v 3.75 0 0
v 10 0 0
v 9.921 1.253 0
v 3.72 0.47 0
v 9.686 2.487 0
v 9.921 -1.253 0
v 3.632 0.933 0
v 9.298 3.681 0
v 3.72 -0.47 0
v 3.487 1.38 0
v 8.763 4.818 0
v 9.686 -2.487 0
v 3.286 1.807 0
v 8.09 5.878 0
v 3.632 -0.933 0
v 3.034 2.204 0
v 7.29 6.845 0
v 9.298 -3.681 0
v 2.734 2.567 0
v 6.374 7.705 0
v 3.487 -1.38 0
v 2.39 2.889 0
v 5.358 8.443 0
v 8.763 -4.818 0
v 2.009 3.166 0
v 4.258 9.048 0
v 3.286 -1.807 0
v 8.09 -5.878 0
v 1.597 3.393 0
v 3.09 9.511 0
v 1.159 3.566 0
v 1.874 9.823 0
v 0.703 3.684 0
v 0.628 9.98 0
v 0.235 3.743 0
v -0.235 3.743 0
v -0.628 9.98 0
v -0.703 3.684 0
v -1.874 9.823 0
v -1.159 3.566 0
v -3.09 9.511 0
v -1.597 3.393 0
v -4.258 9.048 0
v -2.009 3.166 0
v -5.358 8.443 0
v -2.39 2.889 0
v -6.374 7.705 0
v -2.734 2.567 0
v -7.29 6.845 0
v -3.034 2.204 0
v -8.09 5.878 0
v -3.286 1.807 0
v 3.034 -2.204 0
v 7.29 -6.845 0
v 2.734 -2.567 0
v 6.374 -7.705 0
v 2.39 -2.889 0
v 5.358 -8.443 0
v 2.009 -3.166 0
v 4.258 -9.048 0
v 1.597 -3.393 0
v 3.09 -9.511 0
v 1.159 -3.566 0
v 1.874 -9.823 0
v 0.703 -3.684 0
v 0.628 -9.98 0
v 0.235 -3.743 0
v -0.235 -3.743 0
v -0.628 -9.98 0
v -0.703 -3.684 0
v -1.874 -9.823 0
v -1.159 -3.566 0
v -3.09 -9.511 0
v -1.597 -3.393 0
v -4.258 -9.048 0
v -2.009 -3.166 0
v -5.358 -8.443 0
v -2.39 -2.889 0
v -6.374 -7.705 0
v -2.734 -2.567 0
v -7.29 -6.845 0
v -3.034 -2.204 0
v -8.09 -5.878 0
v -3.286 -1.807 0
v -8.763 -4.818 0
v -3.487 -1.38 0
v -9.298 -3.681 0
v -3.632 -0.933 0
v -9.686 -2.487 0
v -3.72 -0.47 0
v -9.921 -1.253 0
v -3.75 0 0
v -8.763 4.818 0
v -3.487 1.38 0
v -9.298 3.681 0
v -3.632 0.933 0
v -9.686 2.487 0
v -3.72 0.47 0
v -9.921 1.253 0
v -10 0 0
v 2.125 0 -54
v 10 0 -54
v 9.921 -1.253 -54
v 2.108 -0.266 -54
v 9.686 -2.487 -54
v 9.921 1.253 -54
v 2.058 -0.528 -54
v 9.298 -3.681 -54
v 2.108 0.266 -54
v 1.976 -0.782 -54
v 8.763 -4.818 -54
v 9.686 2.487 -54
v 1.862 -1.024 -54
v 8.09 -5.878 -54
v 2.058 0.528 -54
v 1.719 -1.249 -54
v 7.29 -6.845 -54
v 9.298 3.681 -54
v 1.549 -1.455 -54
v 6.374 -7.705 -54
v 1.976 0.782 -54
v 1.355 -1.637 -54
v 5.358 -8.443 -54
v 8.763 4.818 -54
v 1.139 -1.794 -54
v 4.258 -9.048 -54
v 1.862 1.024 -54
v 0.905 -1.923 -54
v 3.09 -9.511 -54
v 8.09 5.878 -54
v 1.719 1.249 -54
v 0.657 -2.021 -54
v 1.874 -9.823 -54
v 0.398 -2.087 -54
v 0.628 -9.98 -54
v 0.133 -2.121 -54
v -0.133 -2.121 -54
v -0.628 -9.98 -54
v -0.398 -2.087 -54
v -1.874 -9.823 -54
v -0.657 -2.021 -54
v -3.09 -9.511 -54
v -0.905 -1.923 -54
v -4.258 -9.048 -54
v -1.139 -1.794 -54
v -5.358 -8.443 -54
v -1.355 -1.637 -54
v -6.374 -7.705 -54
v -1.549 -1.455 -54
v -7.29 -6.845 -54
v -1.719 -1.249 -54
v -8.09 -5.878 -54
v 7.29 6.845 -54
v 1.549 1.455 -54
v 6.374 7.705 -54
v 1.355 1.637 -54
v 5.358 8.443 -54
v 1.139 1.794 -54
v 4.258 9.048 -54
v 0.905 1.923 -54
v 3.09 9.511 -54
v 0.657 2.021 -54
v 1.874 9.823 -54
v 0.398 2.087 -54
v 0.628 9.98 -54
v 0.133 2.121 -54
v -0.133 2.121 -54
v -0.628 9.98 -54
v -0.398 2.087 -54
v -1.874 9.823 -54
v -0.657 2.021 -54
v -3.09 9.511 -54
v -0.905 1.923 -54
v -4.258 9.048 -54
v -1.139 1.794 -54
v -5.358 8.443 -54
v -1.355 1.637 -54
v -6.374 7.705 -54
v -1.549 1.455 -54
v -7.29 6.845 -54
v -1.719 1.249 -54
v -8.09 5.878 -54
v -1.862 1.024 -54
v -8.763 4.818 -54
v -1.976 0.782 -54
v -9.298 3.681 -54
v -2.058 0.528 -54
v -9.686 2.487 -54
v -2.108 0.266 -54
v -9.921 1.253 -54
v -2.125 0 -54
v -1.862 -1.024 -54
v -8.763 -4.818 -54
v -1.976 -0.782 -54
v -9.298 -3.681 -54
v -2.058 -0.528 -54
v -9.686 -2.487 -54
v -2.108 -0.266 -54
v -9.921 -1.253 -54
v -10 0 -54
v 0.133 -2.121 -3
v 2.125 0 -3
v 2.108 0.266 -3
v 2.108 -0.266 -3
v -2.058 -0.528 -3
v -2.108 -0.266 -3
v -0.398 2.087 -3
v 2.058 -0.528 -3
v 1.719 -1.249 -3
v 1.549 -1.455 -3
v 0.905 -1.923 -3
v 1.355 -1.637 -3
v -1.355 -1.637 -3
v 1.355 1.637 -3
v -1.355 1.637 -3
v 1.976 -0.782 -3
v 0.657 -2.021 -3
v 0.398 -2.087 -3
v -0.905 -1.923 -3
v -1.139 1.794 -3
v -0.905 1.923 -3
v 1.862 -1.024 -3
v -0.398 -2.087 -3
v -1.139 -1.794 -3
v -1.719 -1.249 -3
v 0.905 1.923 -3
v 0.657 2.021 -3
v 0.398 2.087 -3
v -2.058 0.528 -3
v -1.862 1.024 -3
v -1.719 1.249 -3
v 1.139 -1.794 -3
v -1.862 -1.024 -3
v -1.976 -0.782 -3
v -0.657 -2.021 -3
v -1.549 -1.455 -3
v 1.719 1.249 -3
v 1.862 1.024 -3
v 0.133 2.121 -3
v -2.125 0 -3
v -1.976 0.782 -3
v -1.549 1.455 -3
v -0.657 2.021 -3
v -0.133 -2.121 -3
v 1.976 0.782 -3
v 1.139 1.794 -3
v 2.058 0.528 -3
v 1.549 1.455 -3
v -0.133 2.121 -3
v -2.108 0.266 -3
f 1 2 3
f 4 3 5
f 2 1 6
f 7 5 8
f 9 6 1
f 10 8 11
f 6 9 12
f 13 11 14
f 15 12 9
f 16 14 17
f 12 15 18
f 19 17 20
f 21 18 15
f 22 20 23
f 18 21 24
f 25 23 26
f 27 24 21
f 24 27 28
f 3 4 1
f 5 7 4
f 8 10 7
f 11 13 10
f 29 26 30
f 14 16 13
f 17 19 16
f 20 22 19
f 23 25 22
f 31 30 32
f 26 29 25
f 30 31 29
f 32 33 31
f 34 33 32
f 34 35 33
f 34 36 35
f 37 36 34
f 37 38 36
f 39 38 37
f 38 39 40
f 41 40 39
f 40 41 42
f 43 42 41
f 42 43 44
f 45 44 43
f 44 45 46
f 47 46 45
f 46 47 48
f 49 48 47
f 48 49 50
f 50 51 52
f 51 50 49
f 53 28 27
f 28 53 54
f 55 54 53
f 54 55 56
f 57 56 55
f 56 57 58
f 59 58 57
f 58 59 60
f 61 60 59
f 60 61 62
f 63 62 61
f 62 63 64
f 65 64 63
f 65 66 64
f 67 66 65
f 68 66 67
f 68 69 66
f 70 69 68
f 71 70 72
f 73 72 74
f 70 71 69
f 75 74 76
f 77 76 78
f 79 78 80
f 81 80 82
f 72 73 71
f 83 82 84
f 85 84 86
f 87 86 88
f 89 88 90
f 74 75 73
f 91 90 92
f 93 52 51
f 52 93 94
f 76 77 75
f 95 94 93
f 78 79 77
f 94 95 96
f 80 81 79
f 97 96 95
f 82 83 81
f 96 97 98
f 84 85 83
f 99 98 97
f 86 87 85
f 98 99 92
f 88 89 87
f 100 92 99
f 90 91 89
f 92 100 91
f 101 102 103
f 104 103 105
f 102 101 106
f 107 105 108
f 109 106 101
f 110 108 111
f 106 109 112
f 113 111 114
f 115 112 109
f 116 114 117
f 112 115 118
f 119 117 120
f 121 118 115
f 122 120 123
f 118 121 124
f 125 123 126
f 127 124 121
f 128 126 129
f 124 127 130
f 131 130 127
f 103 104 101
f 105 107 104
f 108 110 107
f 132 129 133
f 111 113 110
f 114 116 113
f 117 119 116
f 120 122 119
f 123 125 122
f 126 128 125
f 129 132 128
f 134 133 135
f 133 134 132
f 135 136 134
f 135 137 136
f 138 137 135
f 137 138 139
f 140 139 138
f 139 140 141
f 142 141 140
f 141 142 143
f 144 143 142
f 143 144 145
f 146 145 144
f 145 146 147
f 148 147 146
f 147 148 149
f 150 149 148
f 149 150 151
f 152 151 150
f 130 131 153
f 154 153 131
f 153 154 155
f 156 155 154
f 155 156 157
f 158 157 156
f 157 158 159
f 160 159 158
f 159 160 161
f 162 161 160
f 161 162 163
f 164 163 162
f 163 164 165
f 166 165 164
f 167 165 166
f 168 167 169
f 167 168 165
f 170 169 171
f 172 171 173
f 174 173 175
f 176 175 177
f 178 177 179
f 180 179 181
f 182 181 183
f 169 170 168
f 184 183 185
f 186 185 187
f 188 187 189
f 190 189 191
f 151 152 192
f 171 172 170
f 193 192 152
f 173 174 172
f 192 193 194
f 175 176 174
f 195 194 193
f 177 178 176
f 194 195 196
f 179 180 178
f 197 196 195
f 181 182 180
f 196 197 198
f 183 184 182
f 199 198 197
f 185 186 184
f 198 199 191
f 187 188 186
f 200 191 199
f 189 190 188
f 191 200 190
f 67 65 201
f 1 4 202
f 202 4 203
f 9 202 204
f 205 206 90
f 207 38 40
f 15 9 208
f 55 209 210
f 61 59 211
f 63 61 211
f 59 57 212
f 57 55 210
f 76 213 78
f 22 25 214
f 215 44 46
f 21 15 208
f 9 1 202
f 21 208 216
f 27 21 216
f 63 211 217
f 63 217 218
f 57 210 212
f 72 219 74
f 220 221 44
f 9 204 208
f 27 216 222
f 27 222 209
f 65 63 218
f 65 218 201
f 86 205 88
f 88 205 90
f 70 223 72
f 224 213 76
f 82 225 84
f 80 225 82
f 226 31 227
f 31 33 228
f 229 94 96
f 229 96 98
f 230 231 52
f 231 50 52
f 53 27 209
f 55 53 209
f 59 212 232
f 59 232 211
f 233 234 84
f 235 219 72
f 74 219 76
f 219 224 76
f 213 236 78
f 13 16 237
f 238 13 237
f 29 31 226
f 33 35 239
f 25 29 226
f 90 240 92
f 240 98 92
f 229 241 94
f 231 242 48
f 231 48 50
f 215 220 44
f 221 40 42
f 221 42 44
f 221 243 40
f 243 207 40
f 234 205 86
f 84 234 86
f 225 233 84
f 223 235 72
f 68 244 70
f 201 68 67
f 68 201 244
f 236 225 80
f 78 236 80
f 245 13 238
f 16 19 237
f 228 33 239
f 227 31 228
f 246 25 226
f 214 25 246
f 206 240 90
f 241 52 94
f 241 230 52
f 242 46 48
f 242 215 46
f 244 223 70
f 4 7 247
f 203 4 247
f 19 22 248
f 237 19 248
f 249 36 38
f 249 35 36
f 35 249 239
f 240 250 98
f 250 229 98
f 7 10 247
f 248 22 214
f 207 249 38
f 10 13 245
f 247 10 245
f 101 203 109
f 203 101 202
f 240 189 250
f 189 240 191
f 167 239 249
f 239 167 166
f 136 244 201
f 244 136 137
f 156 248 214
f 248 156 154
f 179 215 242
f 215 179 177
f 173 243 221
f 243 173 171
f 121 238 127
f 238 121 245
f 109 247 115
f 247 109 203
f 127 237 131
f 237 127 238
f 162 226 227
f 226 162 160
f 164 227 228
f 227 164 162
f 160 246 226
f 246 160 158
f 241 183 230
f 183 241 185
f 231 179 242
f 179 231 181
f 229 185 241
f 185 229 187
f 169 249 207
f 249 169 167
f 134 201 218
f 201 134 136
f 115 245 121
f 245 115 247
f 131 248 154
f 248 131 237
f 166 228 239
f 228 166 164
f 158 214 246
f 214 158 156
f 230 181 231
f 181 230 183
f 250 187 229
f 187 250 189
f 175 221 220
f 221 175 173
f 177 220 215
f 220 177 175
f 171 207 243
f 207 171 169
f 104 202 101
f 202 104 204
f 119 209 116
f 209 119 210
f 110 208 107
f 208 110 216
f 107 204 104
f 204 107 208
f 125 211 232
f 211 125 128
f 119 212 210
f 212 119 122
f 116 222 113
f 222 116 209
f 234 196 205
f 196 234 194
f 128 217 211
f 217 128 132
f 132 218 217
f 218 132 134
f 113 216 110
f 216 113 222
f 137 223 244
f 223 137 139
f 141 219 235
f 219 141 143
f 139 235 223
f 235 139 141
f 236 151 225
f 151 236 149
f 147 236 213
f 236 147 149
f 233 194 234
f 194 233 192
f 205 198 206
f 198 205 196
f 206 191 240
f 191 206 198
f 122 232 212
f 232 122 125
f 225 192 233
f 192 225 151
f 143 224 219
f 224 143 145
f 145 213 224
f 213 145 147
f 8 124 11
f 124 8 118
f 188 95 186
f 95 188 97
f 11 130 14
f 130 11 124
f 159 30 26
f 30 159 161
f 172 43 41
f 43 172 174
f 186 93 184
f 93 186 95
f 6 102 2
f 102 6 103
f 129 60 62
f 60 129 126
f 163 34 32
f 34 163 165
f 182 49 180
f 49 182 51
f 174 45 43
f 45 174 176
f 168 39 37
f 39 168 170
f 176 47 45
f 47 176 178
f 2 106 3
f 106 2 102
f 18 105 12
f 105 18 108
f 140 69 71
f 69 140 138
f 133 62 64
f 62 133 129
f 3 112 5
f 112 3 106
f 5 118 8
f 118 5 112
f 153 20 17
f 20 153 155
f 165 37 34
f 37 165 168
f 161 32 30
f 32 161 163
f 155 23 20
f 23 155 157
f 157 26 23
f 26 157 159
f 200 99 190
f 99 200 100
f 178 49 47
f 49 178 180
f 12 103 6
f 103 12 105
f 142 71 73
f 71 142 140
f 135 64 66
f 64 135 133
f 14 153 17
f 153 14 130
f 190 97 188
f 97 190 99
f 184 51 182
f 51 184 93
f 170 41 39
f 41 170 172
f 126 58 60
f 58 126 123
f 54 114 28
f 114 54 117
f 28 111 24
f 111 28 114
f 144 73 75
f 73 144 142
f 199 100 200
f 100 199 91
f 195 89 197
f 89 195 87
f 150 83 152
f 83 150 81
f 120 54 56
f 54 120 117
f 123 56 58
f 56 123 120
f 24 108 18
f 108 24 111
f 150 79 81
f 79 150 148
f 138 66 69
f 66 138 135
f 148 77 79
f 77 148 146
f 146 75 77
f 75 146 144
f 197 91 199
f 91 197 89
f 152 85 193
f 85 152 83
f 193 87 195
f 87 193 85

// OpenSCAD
$fn = 50;


difference() {
	union() {
		translate(v = [0, 0, -54.0000000000]) {
			cylinder(h = 54, r = 10.0000000000);
		}
	}
	union() {
		translate(v = [0, 0, 0]) {
			rotate(a = [0, 0, 0]) {
				difference() {
					union() {
						#translate(v = [0, 0, -54.0000000000]) {
							cylinder(h = 54, r = 2.0000000000);
						}
						#translate(v = [0, 0, -3]) {
							cylinder(h = 3, r1 = 2.1250000000, r2 = 3.7500000000);
						}
						#translate(v = [0, 0, -54.0000000000]) {
							cylinder(h = 54, r = 2.1250000000);
						}
						#translate(v = [0, 0, -54.0000000000]) {
							cylinder(h = 54, r = 2.0000000000);
						}
					}
					union();
				}
			}
		}
	}
}
